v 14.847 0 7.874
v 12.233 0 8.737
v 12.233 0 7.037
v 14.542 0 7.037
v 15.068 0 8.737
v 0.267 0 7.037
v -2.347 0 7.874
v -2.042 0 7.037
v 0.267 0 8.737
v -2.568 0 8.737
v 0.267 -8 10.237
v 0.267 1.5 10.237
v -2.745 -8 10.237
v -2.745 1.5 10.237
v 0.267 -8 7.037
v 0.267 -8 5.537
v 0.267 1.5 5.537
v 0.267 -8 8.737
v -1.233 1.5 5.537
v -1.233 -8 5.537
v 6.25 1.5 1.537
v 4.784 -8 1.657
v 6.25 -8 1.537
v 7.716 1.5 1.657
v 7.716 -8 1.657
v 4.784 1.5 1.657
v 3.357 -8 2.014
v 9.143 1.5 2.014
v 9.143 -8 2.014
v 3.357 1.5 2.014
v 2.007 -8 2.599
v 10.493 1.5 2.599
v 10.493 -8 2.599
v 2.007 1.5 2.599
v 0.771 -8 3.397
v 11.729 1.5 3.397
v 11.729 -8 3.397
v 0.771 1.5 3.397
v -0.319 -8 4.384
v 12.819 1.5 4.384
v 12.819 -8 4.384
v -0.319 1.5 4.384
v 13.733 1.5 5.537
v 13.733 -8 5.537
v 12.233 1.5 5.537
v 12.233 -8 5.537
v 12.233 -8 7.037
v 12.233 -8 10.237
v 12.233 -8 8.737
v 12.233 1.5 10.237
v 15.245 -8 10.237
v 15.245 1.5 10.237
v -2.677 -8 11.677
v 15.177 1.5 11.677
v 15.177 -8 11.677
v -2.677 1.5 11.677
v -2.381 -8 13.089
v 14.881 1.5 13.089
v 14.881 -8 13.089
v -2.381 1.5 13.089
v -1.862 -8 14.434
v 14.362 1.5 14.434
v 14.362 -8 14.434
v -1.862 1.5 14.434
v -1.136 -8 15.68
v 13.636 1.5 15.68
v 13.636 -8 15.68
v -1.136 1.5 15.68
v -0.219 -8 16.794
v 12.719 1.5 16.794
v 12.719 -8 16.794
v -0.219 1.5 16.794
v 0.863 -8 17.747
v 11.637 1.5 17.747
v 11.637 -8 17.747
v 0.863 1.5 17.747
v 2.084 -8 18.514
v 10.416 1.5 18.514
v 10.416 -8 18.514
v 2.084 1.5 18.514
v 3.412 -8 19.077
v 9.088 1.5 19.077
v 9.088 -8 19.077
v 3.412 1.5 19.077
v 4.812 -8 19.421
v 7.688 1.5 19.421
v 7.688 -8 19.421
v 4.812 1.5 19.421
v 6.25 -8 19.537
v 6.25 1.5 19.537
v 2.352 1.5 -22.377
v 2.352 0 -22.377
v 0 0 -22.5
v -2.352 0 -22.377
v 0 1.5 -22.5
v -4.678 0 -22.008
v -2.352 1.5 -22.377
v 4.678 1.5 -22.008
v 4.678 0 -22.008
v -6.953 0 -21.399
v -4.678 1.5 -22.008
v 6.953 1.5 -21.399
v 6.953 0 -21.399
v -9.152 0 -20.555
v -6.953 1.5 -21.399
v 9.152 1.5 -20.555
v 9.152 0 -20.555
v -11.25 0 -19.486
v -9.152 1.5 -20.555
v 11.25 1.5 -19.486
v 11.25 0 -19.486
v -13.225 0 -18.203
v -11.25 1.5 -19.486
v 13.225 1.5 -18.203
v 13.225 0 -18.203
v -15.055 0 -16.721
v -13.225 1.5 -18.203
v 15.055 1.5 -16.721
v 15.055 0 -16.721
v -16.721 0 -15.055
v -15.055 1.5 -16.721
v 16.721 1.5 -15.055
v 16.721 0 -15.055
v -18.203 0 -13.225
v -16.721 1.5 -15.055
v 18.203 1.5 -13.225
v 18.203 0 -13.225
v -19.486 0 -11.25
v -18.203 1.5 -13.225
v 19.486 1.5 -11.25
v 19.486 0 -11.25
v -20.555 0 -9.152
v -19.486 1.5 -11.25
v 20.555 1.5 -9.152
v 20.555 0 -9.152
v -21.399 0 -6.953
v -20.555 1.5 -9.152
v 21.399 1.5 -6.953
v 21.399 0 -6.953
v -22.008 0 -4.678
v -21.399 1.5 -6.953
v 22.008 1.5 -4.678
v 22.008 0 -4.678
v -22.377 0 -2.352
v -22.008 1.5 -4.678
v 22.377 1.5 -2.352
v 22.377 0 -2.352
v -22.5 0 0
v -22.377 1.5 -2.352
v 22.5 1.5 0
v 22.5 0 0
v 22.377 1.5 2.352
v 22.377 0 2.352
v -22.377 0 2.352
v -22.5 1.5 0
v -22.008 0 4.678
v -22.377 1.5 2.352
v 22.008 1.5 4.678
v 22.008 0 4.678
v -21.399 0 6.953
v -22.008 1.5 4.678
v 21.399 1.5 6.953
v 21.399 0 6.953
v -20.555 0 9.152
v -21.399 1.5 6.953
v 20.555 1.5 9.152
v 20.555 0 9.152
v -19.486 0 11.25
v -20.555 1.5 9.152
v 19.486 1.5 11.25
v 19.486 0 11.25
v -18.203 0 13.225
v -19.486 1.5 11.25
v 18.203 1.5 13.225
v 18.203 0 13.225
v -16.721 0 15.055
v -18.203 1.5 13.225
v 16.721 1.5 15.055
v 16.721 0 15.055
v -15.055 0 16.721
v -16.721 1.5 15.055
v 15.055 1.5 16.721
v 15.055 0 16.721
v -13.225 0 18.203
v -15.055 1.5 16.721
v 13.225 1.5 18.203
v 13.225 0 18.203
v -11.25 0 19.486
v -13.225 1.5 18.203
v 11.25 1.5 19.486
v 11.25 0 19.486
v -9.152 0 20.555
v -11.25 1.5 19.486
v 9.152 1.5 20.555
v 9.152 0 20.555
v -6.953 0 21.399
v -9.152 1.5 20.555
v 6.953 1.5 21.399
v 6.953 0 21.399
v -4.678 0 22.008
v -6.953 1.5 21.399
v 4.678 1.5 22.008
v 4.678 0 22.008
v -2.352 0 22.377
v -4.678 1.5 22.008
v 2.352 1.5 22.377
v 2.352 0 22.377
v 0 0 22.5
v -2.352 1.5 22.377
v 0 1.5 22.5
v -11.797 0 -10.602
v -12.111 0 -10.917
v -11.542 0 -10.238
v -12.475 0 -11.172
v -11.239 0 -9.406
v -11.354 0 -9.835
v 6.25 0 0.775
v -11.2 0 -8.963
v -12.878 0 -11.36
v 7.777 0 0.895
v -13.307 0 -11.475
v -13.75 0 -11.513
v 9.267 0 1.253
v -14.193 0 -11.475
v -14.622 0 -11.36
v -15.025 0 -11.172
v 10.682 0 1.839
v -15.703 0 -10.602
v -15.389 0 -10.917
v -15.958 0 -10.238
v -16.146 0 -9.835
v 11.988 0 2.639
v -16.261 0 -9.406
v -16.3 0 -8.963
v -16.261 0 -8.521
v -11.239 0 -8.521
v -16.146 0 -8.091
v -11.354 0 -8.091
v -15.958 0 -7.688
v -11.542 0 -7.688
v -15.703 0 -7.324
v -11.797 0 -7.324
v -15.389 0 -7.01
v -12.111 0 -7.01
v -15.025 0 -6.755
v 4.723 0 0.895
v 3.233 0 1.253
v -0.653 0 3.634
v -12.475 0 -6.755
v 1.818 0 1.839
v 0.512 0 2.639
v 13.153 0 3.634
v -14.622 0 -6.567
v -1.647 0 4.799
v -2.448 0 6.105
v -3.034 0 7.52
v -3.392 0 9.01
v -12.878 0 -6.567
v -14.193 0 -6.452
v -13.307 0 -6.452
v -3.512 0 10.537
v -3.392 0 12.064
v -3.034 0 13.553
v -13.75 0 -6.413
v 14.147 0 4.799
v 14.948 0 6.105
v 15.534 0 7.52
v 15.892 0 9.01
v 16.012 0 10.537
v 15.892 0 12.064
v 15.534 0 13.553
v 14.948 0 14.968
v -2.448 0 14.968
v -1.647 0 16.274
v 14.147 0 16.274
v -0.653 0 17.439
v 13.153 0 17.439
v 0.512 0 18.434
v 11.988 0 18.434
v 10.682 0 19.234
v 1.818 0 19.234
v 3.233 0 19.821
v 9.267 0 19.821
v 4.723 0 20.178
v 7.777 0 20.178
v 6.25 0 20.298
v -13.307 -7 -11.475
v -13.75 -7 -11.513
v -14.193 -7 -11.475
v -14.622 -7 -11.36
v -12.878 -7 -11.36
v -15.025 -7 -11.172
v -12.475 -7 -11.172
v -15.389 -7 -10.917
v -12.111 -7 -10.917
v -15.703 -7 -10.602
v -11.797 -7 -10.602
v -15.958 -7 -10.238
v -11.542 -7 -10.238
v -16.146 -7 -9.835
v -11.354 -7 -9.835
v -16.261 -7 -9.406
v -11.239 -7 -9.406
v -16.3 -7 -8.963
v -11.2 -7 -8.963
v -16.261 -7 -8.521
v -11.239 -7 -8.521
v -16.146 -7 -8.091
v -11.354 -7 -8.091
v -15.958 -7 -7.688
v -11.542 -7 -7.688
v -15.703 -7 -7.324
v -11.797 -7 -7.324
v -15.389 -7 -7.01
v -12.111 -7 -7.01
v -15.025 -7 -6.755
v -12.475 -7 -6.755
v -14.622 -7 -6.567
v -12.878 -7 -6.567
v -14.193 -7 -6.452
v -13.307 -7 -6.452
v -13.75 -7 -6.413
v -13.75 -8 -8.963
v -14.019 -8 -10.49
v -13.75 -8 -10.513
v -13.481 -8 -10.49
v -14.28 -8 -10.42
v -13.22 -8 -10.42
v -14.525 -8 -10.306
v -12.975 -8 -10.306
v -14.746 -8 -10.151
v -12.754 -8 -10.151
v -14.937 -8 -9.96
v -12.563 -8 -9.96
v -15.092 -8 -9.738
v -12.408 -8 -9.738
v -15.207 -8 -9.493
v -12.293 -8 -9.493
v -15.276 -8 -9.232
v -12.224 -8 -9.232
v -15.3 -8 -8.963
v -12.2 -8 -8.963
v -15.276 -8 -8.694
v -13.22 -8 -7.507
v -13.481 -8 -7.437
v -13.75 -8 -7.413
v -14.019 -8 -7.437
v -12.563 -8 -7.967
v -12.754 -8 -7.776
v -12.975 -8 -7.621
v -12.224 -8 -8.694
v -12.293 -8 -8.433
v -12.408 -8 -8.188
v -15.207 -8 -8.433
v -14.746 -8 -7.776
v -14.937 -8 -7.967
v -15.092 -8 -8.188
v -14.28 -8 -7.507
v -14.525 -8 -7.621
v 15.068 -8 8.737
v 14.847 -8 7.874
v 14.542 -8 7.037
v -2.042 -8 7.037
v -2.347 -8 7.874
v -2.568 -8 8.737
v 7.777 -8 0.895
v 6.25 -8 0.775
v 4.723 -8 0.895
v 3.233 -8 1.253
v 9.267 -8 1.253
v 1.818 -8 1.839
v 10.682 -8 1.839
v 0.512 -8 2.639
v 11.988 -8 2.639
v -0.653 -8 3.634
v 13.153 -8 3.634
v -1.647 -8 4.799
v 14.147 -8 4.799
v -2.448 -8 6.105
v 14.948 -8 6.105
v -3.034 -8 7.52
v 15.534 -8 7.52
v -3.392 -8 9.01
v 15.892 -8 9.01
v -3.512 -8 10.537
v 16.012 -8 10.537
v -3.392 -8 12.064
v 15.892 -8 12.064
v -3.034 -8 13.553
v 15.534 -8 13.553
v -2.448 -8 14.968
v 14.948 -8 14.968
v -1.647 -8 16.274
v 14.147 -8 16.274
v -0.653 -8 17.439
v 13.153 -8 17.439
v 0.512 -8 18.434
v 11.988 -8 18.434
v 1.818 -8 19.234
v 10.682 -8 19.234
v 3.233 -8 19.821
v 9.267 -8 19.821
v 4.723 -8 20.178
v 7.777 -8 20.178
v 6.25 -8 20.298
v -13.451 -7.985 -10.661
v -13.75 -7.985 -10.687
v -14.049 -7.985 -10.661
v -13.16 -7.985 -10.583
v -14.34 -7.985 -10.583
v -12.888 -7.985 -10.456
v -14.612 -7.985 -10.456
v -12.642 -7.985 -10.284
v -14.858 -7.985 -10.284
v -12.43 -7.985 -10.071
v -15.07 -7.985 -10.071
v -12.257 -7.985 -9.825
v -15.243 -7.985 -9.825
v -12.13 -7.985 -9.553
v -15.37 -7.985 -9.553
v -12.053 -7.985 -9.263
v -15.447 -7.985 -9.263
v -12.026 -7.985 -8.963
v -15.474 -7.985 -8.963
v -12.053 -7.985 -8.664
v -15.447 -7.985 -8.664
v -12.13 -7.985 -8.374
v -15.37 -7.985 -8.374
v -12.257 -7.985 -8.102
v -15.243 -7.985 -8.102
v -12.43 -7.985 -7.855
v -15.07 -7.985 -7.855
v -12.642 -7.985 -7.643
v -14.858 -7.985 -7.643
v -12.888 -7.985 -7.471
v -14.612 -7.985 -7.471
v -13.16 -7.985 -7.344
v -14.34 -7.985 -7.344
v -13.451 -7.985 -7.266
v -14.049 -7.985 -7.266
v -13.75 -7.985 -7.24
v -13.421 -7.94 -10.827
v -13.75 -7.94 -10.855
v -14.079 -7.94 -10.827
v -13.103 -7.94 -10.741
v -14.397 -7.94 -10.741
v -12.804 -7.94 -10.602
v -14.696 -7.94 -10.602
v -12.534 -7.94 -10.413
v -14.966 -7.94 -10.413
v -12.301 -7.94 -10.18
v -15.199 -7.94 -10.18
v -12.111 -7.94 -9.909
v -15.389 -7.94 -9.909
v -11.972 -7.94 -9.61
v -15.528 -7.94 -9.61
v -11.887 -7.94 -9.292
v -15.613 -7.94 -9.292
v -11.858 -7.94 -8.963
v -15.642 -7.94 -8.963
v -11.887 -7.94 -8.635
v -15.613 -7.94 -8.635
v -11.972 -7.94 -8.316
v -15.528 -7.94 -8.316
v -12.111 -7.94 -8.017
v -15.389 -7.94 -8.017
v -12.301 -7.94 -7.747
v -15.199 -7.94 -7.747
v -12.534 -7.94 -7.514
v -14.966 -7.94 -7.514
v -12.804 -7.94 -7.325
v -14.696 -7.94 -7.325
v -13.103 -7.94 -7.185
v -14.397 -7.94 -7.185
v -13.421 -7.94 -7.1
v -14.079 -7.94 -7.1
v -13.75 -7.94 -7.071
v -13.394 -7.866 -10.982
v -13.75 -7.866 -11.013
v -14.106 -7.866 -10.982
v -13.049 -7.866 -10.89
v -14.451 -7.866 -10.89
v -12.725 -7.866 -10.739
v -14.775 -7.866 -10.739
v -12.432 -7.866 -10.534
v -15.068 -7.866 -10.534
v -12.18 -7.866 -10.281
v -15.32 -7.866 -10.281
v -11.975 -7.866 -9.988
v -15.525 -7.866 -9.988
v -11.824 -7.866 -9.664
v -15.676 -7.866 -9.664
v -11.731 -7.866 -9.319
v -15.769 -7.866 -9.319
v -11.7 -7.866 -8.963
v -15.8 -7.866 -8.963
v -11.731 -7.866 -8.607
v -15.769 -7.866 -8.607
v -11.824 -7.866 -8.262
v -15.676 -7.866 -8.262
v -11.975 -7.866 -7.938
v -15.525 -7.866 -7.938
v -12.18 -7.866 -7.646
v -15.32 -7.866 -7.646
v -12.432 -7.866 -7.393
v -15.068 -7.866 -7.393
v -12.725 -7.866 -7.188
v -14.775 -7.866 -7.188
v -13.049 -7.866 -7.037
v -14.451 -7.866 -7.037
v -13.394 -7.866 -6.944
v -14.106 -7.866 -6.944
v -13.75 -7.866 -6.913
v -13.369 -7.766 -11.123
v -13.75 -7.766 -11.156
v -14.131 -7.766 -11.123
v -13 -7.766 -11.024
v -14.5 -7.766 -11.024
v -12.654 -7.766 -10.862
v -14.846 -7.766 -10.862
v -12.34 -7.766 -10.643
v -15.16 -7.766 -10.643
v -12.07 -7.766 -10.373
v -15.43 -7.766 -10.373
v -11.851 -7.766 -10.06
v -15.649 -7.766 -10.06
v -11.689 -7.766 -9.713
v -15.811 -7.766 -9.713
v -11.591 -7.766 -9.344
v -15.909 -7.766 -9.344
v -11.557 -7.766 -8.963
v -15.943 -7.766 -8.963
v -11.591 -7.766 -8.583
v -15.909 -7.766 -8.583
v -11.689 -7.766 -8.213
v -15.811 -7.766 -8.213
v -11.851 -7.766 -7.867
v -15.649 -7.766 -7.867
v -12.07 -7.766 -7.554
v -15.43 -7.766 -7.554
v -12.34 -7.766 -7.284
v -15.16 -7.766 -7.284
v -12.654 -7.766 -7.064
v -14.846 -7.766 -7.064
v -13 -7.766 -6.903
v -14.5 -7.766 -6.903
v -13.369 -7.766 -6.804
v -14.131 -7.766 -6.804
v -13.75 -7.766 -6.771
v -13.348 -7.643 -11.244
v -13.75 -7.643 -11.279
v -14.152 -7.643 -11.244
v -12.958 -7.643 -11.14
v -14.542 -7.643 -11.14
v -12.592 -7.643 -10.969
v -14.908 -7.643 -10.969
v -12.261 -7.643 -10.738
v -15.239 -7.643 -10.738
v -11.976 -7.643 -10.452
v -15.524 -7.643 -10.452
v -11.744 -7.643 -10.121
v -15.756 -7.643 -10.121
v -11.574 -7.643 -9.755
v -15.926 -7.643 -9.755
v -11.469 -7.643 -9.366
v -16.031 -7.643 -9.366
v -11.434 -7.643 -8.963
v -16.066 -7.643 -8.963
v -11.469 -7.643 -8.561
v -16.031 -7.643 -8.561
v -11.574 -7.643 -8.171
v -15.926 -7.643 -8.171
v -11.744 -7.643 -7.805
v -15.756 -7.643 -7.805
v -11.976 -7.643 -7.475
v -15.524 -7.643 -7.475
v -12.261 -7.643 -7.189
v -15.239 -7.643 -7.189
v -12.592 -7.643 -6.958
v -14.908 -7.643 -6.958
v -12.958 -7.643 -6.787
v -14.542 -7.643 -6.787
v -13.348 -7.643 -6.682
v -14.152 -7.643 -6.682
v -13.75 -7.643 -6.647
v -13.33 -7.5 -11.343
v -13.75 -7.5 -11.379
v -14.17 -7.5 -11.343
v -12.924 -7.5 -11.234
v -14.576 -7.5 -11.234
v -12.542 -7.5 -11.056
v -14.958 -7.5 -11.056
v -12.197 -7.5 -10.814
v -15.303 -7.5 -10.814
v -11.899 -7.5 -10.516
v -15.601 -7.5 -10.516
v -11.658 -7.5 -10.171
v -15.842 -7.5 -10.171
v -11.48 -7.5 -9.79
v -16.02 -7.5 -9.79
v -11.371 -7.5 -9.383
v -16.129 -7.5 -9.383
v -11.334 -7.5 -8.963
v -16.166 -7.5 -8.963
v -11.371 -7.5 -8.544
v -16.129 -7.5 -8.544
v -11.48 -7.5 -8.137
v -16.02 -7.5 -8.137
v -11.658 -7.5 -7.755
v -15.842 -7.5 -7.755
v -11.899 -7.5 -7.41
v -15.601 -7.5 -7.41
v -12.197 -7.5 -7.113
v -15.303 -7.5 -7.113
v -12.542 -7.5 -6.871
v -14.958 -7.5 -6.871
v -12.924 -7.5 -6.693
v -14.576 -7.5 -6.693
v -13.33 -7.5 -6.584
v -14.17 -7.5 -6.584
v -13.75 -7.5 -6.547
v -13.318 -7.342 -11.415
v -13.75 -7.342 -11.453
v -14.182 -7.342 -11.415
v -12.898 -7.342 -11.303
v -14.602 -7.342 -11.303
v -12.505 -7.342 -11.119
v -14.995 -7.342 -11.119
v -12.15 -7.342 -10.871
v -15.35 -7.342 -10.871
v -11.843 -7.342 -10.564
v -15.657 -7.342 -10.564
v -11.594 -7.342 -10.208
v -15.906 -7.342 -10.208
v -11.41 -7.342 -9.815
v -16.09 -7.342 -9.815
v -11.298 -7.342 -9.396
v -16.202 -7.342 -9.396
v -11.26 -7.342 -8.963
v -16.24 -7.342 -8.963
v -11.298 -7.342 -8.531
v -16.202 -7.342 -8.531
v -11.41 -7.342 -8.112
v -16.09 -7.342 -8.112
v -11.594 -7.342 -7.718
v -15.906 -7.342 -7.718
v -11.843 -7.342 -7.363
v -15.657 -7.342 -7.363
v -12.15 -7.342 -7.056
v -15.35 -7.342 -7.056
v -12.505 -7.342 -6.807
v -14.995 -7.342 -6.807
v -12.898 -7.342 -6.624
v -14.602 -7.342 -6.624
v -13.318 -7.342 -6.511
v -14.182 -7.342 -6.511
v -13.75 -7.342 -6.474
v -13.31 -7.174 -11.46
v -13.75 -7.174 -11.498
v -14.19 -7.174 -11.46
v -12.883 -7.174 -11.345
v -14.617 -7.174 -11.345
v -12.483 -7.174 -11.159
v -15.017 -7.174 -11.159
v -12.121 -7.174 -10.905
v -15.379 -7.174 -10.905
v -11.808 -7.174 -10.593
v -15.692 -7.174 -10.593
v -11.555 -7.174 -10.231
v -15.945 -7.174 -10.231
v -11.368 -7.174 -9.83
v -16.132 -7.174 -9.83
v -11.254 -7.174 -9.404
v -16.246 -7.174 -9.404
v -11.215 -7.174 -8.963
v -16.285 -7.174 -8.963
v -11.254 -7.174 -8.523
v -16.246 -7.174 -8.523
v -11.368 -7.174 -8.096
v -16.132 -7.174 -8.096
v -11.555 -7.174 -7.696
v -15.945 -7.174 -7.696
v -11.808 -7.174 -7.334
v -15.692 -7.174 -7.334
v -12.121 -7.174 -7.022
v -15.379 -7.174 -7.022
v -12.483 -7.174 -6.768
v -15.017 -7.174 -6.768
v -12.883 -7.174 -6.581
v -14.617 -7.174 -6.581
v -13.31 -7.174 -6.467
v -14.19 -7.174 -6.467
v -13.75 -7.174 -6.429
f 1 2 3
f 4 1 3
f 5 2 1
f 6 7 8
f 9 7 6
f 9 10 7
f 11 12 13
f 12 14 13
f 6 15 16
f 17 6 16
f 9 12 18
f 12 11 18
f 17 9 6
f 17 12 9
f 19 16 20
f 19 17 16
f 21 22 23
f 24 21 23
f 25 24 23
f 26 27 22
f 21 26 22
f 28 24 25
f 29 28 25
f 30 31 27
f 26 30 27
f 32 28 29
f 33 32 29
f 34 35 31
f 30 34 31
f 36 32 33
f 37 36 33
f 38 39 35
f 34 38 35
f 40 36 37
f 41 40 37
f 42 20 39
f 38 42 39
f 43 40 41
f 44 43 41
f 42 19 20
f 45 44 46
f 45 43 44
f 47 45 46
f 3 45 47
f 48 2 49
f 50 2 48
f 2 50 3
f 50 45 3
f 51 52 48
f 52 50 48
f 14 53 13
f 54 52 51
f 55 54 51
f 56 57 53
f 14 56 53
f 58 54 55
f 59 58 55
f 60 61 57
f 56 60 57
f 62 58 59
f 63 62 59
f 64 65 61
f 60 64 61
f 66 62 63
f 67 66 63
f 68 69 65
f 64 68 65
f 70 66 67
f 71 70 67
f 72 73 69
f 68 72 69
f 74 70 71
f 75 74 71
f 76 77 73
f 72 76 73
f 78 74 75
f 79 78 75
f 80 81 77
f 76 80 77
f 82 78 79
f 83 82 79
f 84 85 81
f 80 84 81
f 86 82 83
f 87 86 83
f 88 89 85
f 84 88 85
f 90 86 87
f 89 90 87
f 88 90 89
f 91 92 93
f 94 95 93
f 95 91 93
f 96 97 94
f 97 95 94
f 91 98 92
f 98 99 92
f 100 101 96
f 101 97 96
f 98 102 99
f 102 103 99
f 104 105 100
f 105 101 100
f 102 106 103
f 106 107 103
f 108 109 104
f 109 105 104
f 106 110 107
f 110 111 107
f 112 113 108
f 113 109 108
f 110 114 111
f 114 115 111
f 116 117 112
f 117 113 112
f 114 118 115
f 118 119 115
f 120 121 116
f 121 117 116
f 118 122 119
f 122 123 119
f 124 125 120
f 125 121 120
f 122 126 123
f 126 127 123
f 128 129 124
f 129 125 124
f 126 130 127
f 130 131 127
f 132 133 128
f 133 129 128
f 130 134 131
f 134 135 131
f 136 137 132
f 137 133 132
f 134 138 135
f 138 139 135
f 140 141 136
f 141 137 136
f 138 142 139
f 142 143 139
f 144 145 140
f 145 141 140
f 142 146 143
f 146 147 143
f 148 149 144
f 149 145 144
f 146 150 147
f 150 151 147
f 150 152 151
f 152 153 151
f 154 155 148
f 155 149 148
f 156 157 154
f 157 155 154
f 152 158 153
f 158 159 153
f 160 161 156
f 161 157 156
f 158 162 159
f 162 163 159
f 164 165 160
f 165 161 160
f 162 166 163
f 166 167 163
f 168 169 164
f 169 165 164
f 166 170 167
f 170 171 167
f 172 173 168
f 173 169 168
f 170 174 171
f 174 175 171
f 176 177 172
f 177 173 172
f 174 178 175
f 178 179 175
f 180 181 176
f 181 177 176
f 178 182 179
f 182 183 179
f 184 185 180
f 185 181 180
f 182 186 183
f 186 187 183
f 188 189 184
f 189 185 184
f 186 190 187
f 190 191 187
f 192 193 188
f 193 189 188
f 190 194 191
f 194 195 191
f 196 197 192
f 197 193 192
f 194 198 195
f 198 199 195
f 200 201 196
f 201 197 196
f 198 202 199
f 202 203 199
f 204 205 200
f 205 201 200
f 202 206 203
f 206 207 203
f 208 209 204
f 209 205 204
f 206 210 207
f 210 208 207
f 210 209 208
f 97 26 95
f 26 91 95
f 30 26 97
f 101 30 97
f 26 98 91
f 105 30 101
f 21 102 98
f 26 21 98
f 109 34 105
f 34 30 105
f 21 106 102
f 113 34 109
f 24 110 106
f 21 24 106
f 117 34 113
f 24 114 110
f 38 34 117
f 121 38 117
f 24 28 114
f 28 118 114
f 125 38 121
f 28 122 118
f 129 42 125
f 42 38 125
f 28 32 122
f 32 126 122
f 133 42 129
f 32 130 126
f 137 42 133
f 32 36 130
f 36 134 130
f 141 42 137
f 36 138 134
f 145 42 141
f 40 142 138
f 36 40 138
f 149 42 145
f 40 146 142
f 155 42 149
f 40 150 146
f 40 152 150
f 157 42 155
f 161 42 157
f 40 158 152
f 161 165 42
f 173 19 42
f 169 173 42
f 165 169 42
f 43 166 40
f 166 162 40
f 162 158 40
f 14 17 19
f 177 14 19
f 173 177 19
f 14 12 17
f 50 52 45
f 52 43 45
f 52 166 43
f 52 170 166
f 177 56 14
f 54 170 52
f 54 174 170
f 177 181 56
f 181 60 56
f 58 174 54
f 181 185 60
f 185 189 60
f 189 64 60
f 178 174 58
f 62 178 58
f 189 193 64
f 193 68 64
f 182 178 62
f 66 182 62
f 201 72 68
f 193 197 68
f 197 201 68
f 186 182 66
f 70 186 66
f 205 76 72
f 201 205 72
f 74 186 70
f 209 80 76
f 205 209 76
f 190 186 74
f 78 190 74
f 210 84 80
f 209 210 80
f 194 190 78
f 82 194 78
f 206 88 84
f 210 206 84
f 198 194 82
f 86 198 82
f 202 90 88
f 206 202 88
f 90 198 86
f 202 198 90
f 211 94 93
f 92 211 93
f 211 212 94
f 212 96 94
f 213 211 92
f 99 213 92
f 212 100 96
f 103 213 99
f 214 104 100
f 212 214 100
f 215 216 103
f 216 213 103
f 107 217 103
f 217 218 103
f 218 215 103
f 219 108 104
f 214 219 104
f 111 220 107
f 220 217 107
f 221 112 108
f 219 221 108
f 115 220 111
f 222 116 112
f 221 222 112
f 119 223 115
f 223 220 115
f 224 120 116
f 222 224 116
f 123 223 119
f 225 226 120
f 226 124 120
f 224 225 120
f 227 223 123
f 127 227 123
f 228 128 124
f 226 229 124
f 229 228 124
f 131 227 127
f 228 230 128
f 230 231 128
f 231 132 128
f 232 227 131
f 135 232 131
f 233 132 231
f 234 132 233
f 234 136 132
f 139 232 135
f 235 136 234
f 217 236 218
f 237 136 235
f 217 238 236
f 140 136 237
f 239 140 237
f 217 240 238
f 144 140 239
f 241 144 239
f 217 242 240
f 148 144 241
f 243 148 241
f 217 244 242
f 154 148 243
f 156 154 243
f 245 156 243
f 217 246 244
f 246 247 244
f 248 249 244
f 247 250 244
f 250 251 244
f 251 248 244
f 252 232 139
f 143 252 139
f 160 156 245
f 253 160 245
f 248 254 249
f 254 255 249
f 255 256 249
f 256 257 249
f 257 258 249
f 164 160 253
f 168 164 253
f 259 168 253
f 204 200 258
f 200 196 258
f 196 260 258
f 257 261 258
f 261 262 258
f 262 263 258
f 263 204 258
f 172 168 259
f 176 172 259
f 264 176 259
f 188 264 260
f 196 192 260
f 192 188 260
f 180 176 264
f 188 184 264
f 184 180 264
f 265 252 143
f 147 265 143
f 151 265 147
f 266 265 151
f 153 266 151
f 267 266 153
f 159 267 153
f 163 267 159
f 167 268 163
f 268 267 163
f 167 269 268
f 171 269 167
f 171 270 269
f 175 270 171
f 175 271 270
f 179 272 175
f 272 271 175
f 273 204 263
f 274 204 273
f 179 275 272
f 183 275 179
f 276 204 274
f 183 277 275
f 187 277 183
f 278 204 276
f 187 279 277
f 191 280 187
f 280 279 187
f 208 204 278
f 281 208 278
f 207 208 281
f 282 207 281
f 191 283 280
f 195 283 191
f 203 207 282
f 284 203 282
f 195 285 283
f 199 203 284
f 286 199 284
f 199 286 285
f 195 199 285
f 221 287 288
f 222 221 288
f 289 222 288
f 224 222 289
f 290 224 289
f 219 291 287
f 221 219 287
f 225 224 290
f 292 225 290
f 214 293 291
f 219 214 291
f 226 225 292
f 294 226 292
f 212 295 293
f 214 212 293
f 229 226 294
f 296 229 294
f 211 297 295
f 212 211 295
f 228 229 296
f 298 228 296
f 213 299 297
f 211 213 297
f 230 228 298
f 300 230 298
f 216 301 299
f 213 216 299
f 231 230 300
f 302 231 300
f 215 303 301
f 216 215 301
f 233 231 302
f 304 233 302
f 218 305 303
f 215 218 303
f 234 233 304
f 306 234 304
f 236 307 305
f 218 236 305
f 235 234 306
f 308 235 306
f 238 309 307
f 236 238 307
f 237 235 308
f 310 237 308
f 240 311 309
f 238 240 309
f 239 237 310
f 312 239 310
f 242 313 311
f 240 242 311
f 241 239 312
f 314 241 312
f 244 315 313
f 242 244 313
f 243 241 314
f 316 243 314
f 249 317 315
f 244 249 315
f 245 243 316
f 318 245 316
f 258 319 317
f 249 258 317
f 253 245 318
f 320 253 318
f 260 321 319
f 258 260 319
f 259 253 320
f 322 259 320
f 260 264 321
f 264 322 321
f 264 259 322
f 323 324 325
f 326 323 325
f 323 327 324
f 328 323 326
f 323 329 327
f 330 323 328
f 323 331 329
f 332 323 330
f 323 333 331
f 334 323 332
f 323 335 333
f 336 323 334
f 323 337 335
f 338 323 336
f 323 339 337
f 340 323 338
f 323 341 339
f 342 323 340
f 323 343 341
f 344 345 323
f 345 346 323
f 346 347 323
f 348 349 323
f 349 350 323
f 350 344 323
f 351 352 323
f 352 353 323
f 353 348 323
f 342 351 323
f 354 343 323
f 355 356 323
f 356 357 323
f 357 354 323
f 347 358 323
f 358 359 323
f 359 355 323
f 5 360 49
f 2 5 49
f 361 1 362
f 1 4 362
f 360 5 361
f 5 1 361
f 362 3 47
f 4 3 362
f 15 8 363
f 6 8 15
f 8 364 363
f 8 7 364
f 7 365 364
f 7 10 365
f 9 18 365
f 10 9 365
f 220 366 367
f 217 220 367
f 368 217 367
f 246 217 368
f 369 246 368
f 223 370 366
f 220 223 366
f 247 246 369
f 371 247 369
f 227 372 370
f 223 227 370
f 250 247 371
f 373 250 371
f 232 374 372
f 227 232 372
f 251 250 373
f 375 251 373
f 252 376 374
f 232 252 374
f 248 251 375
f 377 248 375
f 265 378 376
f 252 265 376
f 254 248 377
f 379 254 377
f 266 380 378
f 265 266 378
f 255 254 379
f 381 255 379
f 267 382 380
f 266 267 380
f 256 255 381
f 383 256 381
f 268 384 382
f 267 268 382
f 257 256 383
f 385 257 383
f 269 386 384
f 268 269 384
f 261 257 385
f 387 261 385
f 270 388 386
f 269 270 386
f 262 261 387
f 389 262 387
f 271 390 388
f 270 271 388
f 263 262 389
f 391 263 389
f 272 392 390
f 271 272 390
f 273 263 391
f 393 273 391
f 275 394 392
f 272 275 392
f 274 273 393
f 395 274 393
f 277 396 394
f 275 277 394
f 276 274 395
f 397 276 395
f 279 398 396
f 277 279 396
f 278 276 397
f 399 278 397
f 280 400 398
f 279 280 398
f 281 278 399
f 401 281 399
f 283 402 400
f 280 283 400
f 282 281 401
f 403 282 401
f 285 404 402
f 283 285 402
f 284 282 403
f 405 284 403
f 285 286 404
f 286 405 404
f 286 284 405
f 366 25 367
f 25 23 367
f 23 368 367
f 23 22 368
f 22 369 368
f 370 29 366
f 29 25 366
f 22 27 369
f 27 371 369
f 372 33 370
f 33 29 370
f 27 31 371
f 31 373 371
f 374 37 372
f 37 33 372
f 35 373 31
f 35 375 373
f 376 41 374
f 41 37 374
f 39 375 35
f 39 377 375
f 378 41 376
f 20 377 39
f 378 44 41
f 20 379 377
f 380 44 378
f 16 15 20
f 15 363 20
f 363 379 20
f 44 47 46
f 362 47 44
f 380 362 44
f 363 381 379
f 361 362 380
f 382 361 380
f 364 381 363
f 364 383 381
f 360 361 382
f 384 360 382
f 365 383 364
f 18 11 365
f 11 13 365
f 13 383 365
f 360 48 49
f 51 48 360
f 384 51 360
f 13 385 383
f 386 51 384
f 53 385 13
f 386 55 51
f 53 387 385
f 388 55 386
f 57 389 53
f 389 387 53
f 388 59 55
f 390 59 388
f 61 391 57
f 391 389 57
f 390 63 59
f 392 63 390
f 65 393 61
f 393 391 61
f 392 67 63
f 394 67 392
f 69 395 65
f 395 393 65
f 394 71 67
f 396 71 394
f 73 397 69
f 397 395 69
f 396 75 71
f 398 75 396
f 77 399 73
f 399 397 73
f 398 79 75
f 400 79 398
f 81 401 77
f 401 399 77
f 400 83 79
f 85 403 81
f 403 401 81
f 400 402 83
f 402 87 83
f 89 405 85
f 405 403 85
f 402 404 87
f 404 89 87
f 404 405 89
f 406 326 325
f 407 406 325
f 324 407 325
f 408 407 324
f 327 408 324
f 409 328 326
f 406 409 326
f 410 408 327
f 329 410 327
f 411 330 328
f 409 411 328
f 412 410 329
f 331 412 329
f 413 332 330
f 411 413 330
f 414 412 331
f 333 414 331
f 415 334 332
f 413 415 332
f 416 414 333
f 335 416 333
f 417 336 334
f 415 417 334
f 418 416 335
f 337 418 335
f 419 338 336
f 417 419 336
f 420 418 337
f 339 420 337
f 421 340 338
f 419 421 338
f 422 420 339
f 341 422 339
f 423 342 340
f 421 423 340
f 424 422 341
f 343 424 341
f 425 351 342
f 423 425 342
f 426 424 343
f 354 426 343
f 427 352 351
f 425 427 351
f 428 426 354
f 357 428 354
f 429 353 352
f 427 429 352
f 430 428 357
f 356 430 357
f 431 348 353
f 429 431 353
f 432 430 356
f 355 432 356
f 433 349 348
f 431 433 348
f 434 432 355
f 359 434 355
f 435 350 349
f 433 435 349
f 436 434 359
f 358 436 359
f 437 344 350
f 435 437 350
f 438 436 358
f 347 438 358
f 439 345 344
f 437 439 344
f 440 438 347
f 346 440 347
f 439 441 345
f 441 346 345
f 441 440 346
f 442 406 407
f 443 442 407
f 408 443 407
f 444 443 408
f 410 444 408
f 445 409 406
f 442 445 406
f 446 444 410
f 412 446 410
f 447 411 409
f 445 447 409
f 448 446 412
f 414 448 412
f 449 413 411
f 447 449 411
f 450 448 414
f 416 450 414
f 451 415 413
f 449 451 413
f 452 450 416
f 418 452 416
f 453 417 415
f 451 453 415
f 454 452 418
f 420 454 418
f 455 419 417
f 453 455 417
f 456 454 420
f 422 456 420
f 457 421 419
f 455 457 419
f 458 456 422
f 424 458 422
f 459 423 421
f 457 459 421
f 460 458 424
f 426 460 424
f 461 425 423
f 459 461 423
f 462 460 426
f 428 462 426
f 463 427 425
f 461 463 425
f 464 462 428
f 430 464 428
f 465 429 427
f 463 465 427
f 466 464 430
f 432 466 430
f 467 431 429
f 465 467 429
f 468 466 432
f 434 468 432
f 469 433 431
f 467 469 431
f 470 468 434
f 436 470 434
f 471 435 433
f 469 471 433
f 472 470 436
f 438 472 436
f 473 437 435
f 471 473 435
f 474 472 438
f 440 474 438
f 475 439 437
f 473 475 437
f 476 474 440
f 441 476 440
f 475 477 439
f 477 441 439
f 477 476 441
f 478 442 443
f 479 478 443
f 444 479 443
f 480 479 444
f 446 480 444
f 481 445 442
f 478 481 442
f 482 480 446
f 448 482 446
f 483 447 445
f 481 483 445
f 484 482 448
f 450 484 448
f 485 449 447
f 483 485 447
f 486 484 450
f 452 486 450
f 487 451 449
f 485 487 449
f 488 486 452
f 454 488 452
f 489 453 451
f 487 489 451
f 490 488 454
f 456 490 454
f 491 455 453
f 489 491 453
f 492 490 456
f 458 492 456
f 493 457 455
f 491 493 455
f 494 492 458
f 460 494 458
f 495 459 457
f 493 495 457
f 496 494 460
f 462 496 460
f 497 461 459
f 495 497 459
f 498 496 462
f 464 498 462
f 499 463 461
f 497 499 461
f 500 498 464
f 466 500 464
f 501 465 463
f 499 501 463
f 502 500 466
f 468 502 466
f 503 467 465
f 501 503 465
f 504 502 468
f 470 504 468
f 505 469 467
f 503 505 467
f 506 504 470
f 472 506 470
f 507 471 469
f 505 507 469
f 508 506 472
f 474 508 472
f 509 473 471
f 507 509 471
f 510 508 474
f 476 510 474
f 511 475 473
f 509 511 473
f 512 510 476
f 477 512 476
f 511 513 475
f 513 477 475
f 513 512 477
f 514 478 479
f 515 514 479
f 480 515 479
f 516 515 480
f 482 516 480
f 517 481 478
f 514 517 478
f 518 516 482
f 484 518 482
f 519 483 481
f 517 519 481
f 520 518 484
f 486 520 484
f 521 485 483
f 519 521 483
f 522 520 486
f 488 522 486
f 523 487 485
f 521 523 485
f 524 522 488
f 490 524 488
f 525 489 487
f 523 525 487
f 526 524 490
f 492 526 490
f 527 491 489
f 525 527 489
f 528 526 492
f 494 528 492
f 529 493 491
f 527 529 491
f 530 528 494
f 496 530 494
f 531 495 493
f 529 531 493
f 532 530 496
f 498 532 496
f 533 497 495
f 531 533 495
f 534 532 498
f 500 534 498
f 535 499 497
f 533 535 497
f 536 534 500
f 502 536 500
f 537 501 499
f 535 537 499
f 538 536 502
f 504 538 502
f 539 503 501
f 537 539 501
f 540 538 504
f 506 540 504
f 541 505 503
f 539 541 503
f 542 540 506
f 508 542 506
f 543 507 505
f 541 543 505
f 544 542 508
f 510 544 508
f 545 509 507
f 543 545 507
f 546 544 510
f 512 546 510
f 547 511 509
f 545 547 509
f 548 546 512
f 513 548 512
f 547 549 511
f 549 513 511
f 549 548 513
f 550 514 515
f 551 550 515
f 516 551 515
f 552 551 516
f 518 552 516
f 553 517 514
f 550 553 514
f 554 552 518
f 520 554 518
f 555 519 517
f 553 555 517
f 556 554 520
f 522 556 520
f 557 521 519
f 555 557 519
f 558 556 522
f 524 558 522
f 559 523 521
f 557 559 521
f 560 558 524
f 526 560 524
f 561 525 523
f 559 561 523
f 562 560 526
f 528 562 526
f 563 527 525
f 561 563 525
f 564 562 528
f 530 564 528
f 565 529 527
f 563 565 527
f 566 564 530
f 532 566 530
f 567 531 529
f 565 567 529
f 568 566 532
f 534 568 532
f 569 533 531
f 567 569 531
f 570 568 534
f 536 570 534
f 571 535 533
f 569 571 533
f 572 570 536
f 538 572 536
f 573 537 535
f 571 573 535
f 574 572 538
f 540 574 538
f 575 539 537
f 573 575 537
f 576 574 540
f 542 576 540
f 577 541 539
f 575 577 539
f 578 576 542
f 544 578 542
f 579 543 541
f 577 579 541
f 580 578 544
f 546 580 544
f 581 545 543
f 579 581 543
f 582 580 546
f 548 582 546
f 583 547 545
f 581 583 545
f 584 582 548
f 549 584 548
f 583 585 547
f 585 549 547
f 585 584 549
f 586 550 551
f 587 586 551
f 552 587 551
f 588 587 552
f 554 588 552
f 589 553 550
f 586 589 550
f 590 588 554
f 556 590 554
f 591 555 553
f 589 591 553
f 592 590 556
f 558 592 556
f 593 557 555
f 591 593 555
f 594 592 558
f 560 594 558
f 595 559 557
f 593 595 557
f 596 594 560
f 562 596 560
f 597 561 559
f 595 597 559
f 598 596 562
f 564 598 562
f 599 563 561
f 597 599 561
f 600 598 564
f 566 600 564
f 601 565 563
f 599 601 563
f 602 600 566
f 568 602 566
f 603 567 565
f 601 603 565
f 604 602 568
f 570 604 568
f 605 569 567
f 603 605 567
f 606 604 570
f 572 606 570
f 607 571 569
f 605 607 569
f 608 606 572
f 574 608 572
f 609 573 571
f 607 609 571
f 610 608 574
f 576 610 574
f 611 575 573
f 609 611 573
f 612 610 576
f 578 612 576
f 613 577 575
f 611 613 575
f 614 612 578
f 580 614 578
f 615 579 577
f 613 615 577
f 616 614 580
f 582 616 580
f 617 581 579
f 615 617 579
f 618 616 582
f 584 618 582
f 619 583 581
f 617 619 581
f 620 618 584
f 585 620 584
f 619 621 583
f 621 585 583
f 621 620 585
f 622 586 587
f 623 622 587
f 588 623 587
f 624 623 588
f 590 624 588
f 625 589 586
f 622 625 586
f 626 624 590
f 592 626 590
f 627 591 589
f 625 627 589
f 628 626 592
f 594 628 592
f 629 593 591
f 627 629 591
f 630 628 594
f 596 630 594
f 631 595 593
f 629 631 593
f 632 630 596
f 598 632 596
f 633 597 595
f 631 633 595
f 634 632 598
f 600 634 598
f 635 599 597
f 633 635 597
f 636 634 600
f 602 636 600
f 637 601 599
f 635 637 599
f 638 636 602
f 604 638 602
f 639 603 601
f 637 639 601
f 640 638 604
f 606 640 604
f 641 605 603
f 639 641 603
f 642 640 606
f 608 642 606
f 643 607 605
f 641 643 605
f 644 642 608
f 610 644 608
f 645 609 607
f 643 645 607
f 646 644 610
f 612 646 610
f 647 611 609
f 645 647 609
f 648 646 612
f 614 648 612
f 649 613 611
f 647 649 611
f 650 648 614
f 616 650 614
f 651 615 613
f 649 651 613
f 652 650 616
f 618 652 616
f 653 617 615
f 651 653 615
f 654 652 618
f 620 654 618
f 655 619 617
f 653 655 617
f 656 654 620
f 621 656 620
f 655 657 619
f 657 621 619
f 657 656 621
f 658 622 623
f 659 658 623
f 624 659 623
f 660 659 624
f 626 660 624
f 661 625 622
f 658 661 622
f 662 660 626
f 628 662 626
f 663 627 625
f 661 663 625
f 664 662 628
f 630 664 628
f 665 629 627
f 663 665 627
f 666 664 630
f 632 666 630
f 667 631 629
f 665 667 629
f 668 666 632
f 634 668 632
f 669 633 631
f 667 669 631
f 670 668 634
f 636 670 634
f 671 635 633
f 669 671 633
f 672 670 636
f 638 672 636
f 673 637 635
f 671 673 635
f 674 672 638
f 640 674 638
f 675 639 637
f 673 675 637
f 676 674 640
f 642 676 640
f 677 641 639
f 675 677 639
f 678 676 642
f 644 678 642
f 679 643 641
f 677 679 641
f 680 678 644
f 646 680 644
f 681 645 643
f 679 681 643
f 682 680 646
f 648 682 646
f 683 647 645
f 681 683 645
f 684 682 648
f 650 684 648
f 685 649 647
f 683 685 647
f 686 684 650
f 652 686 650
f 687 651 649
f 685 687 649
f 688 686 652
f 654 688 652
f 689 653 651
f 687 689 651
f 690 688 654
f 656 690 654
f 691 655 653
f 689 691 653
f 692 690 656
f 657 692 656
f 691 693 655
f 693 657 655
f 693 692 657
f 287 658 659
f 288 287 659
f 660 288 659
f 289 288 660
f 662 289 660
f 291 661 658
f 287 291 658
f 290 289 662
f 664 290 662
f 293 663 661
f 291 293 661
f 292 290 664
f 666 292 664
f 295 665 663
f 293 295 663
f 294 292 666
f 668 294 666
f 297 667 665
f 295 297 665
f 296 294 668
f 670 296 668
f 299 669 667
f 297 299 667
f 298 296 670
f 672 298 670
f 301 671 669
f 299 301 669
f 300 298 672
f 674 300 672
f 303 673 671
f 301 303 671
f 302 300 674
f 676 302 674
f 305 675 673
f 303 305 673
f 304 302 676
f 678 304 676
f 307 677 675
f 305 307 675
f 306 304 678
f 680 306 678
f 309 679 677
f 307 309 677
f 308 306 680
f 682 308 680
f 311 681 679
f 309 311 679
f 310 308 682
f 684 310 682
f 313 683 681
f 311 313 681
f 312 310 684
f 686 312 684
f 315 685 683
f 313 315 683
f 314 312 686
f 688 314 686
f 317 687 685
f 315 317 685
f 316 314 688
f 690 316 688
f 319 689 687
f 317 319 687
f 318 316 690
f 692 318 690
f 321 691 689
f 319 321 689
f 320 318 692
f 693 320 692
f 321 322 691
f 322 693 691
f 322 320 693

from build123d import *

# Parameters (mm, degrees)
SKETCH1_R           = 22.5
BOSS_EXTRUDE1_DEPTH = 1.5
BOSS_EXTRUDE2_START = -8
SKETCH1_3_R         = 9.761790251
SKETCH1_3_R_2       = 2.55
BOSS_EXTRUDE2_DEPTH = 8
FILLET1_R           = 1


with BuildPart() as part:
    # Sketch1 → Boss-Extrude1 (new body)
    with BuildSketch(Plane(origin=(0, 0, 0), x_dir=(1, 0, 0), z_dir=(0, 1, 0))):
        Circle(SKETCH1_R)
        with BuildLine():
            Line((0.266685226, -5.53666268), (-1.233314774, -5.53666268))
            ThreePointArc((-1.233314774, -5.53666268), (6.25, -1.53666268), (13.733314774, -5.53666268))
            Line((13.733314774, -5.53666268), (12.233314774, -5.53666268))
            Line((12.233314774, -5.53666268), (12.233314774, -10.23666268))
            Line((12.233314774, -10.23666268), (15.24499861, -10.23666268))
            ThreePointArc((15.24499861, -10.23666268), (6.25, -19.53666268), (-2.74499861, -10.23666268))
            Line((-2.74499861, -10.23666268), (0.266685226, -10.23666268))
            Line((0.266685226, -10.23666268), (0.266685226, -5.53666268))
        make_face(mode=Mode.SUBTRACT)
    extrude(amount=BOSS_EXTRUDE1_DEPTH)

    # Sketch1<3> → Boss-Extrude2 (add)
    # profile 1 of 2: a face of its own
    with BuildSketch(Plane(origin=(0, 0, 0), x_dir=(1, 0, 0), z_dir=(0, 1, 0)).offset(BOSS_EXTRUDE2_START)):
        with Locations((6.25, -10.53666268)):
            Circle(SKETCH1_3_R)
        with BuildLine():
            Line((0.266685226, -8.73666268), (-2.568163074, -8.73666268))
            ThreePointArc((-2.568163074, -8.73666268), (-2.346986264, -7.873614205), (-2.041561976, -7.03666268))
            Line((-2.041561976, -7.03666268), (0.266685226, -7.03666268))
            Line((0.266685226, -7.03666268), (0.266685226, -5.53666268))
            Line((0.266685226, -5.53666268), (-1.233314774, -5.53666268))
            ThreePointArc((-1.233314774, -5.53666268), (6.25, -1.53666268), (13.733314774, -5.53666268))
            Line((13.733314774, -5.53666268), (12.233314774, -5.53666268))
            Line((12.233314774, -5.53666268), (12.233314774, -7.03666268))
            Line((12.233314774, -7.03666268), (14.541561976, -7.03666268))
            ThreePointArc((14.541561976, -7.03666268), (14.846986264, -7.873614205), (15.068163074, -8.73666268))
            Line((15.068163074, -8.73666268), (12.233314774, -8.73666268))
            Line((12.233314774, -8.73666268), (12.233314774, -10.23666268))
            Line((12.233314774, -10.23666268), (15.24499861, -10.23666268))
            ThreePointArc((15.24499861, -10.23666268), (6.25, -19.53666268), (-2.74499861, -10.23666268))
            Line((-2.74499861, -10.23666268), (0.266685226, -10.23666268))
            Line((0.266685226, -10.23666268), (0.266685226, -8.73666268))
        make_face(mode=Mode.SUBTRACT)
    # profile 2 of 2: a face of its own
    with BuildSketch(Plane(origin=(0, 0, 0), x_dir=(1, 0, 0), z_dir=(0, 1, 0)).offset(BOSS_EXTRUDE2_START)):
        with Locations((-13.75, 8.96333732)):
            Circle(SKETCH1_3_R_2)
    extrude(amount=BOSS_EXTRUDE2_DEPTH)

    # Fillet1
    fillet1_edges = [part.edges().sort_by_distance(p)[0] for p in [
        (-16.3, -8, -8.96333732),
    ]]
    fillet(fillet1_edges, radius=FILLET1_R)


solid = part.part
